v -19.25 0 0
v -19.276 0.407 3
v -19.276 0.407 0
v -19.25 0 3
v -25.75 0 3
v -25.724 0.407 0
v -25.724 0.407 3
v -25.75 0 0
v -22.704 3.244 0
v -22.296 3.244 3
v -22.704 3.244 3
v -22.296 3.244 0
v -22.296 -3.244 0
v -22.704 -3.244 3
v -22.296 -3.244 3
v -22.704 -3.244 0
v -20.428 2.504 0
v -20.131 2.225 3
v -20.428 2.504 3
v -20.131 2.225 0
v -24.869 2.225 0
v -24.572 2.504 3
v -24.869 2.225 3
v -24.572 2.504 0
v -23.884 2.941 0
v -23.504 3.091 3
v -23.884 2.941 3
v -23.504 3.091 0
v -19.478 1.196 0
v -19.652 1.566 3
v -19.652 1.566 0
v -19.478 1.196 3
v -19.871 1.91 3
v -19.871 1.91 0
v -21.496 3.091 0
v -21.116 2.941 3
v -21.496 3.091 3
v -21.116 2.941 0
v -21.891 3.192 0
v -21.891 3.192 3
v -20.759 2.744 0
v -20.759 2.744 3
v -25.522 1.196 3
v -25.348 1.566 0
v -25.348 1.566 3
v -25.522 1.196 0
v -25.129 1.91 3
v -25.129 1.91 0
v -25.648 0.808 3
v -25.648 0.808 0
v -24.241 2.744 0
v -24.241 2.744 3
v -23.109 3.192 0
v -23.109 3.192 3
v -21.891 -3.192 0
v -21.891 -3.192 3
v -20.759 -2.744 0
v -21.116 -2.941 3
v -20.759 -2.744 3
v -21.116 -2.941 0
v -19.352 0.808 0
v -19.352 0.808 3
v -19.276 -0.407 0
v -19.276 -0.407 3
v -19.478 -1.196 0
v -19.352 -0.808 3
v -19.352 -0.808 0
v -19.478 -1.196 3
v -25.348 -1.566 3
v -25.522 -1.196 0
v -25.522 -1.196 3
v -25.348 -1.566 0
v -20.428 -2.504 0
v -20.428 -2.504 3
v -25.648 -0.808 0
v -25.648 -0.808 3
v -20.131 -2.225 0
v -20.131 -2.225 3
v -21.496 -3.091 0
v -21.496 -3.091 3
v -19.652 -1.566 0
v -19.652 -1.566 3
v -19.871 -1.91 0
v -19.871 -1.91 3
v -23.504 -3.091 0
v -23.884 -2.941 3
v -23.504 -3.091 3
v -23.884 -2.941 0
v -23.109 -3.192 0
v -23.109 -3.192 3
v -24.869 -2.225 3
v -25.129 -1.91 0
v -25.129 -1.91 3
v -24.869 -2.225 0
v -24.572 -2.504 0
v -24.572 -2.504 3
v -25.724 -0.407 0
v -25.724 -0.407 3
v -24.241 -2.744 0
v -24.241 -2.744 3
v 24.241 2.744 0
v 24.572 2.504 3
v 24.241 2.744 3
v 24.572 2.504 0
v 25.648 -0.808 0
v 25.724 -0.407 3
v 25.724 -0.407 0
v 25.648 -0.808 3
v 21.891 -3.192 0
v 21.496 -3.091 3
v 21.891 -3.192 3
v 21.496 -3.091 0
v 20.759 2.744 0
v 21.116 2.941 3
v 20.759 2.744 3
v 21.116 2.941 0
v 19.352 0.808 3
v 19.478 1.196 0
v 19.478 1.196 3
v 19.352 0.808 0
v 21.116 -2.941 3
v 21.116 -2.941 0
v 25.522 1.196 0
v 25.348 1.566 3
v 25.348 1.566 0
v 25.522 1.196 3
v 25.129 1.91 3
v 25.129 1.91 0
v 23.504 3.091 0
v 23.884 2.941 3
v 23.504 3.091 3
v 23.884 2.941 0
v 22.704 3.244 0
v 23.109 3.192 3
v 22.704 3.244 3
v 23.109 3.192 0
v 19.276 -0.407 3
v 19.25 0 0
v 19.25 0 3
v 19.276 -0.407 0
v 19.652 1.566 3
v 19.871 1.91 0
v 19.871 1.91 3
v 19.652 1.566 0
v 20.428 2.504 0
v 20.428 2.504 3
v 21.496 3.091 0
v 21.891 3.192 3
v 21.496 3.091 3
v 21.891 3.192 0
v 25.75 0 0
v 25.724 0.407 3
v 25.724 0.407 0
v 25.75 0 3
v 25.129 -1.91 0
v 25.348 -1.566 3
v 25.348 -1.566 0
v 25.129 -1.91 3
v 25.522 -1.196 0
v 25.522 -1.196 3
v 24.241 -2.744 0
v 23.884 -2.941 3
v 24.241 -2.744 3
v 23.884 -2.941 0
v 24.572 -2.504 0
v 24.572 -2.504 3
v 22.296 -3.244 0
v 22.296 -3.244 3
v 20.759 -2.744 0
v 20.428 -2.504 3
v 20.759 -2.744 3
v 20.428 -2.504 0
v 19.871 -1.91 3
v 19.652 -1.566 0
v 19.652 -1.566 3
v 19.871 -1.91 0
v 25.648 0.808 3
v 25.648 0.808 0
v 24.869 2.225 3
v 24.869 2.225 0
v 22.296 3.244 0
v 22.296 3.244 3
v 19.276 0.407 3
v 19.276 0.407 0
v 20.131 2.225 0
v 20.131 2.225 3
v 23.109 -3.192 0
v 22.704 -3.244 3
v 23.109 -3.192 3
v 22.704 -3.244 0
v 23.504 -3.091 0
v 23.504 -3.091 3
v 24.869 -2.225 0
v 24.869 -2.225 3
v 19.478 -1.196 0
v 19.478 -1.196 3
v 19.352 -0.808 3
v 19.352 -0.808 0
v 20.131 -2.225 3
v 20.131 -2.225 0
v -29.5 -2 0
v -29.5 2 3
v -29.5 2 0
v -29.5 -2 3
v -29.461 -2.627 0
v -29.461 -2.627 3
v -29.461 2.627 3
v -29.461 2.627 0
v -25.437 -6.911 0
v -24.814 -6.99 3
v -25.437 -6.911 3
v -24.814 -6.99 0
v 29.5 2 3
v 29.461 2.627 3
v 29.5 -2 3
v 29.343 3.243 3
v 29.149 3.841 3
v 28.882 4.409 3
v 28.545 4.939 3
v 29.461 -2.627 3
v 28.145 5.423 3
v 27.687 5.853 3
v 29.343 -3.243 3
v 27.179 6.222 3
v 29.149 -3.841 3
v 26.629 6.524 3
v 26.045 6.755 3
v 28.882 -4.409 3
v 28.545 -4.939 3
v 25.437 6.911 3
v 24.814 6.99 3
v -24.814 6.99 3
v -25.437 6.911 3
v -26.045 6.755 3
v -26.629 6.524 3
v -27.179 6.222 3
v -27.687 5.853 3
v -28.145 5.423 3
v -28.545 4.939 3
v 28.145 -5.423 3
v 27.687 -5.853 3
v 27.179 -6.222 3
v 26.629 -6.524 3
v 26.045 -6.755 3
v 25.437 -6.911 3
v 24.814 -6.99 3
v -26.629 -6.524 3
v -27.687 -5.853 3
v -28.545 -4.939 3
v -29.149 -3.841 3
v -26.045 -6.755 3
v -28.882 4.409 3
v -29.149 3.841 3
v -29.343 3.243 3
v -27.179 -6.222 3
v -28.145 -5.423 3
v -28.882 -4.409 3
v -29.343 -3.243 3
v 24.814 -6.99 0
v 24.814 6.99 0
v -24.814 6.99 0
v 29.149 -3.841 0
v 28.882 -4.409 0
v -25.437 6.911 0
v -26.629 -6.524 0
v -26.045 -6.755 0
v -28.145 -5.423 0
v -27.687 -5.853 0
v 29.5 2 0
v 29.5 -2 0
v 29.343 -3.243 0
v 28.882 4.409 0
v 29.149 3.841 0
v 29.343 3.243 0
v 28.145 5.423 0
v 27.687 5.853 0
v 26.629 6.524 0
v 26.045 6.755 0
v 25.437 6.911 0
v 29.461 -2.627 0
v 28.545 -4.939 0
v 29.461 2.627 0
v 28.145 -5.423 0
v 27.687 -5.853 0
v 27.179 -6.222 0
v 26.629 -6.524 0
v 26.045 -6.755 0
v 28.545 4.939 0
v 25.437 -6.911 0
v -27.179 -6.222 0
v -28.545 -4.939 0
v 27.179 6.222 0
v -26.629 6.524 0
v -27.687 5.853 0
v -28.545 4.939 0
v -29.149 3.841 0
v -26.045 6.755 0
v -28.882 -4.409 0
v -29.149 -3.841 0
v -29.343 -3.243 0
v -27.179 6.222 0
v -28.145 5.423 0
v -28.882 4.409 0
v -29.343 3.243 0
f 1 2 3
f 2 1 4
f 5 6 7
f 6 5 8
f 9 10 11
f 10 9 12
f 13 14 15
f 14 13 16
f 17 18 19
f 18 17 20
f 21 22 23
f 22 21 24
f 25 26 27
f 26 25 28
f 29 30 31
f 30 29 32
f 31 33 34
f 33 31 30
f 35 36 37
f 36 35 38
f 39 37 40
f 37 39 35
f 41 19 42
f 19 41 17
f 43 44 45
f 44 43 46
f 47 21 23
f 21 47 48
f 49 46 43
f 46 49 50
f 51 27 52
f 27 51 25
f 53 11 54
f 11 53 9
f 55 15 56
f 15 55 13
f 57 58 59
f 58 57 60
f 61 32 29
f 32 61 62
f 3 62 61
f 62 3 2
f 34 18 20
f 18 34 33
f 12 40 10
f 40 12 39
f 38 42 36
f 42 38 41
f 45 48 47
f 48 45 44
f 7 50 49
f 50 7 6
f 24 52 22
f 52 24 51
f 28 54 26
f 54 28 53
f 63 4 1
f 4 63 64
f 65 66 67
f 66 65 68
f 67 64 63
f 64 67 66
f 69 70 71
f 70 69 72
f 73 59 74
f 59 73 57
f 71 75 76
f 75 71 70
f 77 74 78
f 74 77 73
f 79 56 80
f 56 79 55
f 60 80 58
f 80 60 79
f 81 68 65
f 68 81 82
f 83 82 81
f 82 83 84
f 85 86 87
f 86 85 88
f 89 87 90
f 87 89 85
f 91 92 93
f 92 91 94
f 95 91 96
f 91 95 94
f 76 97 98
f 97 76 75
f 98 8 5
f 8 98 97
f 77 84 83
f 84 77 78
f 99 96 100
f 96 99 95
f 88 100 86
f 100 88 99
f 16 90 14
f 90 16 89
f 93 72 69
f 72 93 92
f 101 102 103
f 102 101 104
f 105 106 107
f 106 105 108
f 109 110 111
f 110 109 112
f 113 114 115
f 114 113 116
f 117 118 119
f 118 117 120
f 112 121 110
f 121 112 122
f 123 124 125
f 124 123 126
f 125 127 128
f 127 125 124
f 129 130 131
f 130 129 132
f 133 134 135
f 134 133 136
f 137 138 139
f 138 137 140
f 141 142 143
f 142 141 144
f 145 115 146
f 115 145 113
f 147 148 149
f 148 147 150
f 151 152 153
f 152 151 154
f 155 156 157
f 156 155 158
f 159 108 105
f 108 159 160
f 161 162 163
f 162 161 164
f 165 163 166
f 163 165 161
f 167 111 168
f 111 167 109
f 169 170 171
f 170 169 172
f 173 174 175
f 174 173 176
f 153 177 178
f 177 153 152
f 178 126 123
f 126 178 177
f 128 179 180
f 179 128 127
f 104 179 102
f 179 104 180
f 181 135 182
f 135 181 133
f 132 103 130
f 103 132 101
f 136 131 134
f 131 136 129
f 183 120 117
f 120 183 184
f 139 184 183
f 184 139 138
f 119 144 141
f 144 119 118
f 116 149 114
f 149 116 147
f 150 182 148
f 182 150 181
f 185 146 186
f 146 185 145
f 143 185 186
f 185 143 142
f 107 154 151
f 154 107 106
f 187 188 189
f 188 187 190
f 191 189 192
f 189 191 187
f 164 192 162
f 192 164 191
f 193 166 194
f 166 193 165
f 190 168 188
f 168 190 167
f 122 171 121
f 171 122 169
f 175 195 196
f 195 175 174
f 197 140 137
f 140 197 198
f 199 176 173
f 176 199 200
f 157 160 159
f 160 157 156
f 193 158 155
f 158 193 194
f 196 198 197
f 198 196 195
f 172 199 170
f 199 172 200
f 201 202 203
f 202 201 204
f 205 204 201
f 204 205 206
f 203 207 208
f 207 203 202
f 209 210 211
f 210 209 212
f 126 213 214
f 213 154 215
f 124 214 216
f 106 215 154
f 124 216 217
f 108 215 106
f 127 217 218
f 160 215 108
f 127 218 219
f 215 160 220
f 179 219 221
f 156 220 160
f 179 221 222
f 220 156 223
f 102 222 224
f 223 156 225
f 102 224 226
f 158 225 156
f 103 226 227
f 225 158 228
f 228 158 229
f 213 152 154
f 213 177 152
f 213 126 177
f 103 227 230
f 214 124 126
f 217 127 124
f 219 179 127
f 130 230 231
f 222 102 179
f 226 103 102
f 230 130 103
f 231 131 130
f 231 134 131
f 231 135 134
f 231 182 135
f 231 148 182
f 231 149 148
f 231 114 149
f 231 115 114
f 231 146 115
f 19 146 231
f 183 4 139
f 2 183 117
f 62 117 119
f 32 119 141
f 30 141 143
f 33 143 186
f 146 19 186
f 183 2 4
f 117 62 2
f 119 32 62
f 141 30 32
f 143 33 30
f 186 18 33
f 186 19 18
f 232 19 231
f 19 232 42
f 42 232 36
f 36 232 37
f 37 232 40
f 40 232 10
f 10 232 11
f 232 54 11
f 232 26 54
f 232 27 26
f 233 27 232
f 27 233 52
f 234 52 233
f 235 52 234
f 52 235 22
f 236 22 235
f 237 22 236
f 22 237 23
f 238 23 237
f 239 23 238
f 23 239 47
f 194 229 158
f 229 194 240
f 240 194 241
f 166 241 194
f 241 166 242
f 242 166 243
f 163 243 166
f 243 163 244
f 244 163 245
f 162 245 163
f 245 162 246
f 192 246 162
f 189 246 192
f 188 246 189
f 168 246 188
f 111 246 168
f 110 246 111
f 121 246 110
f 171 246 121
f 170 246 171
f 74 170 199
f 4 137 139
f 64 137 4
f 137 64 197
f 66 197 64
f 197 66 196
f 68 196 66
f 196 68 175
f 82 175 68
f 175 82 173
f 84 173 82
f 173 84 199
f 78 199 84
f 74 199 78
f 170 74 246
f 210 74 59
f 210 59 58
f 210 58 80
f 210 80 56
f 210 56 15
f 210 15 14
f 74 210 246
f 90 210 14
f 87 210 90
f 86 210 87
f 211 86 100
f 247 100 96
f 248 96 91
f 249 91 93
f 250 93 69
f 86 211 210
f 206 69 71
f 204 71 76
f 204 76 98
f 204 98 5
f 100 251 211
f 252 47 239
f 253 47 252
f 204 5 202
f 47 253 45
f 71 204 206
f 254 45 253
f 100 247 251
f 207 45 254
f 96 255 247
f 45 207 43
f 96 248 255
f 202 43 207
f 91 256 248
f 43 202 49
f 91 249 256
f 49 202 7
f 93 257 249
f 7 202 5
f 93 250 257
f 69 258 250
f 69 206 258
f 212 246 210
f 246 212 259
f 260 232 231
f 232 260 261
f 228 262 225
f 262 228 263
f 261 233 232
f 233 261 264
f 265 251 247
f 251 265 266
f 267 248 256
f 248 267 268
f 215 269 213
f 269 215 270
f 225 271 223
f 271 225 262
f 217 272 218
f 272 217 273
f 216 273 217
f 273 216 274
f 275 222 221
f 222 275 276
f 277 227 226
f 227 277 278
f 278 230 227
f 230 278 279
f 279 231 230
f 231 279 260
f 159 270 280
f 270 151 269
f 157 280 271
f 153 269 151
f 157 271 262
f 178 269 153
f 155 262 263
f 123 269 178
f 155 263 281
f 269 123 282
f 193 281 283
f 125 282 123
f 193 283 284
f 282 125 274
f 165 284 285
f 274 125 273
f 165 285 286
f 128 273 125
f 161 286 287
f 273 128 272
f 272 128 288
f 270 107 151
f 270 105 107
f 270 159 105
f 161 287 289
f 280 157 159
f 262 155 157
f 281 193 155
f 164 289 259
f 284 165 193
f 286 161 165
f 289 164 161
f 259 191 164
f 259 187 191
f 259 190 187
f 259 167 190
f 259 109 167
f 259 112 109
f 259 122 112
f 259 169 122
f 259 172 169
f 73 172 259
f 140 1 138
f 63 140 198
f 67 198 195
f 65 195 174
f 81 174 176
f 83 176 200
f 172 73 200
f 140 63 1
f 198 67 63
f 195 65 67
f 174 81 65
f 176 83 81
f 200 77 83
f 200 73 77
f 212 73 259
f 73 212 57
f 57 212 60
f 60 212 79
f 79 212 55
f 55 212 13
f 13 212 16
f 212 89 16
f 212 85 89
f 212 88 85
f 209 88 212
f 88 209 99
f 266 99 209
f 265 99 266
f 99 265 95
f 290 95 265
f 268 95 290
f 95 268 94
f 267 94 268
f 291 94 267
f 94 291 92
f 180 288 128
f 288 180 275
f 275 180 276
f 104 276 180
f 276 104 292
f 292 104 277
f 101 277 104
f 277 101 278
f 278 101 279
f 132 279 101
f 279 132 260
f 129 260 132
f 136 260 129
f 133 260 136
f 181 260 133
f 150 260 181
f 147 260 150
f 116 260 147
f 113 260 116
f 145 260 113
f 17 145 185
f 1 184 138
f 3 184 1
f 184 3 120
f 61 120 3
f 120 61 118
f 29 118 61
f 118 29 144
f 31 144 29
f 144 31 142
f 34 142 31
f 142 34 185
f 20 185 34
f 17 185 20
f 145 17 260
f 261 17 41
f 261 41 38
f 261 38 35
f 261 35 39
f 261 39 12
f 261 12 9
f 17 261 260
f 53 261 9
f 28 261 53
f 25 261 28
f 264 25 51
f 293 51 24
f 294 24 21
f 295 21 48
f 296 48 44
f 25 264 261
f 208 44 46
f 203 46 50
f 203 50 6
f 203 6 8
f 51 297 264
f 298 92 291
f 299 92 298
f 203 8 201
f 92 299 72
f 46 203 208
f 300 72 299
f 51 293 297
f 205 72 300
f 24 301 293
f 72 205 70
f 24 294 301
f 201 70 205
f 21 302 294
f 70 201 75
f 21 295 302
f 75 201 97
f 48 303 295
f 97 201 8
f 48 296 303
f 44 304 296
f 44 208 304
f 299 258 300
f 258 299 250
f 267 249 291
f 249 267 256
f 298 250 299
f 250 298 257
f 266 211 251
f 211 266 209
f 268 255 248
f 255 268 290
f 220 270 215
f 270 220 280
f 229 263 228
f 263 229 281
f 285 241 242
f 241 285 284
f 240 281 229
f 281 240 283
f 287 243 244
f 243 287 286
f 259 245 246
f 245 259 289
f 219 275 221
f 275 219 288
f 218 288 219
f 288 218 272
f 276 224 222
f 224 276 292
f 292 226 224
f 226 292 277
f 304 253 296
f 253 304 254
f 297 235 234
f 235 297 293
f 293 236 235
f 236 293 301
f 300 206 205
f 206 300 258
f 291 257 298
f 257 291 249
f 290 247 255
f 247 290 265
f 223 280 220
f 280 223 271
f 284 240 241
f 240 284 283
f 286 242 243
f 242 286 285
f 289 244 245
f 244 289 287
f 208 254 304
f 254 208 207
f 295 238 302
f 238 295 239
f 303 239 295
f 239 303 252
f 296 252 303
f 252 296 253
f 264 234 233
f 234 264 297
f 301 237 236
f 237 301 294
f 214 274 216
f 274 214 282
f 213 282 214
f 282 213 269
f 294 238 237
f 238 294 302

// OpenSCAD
$fn = 50;


difference() {
	union() {
		hull() {
			translate(v = [-24.5000000000, 2.0000000000, 0]) {
				cylinder(h = 3, r = 5);
			}
			translate(v = [24.5000000000, 2.0000000000, 0]) {
				cylinder(h = 3, r = 5);
			}
			translate(v = [-24.5000000000, -2.0000000000, 0]) {
				cylinder(h = 3, r = 5);
			}
			translate(v = [24.5000000000, -2.0000000000, 0]) {
				cylinder(h = 3, r = 5);
			}
		}
	}
	union() {
		translate(v = [-22.5000000000, 0.0000000000, 0]) {
			cylinder(h = 3, r = 3.2500000000);
		}
		translate(v = [22.5000000000, 0.0000000000, 0]) {
			cylinder(h = 3, r = 3.2500000000);
		}
		translate(v = [-22.5000000000, 0.0000000000, 0]) {
			cylinder(h = 3, r = 1.8000000000);
		}
		translate(v = [22.5000000000, 0.0000000000, 0]) {
			cylinder(h = 3, r = 1.8000000000);
		}
		translate(v = [-22.5000000000, 0.0000000000, 0]) {
			cylinder(h = 3, r = 1.8000000000);
		}
		translate(v = [22.5000000000, 0.0000000000, 0]) {
			cylinder(h = 3, r = 1.8000000000);
		}
		translate(v = [-22.5000000000, 0.0000000000, 0]) {
			cylinder(h = 3, r = 1.8000000000);
		}
		translate(v = [22.5000000000, 0.0000000000, 0]) {
			cylinder(h = 3, r = 1.8000000000);
		}
	}
}
